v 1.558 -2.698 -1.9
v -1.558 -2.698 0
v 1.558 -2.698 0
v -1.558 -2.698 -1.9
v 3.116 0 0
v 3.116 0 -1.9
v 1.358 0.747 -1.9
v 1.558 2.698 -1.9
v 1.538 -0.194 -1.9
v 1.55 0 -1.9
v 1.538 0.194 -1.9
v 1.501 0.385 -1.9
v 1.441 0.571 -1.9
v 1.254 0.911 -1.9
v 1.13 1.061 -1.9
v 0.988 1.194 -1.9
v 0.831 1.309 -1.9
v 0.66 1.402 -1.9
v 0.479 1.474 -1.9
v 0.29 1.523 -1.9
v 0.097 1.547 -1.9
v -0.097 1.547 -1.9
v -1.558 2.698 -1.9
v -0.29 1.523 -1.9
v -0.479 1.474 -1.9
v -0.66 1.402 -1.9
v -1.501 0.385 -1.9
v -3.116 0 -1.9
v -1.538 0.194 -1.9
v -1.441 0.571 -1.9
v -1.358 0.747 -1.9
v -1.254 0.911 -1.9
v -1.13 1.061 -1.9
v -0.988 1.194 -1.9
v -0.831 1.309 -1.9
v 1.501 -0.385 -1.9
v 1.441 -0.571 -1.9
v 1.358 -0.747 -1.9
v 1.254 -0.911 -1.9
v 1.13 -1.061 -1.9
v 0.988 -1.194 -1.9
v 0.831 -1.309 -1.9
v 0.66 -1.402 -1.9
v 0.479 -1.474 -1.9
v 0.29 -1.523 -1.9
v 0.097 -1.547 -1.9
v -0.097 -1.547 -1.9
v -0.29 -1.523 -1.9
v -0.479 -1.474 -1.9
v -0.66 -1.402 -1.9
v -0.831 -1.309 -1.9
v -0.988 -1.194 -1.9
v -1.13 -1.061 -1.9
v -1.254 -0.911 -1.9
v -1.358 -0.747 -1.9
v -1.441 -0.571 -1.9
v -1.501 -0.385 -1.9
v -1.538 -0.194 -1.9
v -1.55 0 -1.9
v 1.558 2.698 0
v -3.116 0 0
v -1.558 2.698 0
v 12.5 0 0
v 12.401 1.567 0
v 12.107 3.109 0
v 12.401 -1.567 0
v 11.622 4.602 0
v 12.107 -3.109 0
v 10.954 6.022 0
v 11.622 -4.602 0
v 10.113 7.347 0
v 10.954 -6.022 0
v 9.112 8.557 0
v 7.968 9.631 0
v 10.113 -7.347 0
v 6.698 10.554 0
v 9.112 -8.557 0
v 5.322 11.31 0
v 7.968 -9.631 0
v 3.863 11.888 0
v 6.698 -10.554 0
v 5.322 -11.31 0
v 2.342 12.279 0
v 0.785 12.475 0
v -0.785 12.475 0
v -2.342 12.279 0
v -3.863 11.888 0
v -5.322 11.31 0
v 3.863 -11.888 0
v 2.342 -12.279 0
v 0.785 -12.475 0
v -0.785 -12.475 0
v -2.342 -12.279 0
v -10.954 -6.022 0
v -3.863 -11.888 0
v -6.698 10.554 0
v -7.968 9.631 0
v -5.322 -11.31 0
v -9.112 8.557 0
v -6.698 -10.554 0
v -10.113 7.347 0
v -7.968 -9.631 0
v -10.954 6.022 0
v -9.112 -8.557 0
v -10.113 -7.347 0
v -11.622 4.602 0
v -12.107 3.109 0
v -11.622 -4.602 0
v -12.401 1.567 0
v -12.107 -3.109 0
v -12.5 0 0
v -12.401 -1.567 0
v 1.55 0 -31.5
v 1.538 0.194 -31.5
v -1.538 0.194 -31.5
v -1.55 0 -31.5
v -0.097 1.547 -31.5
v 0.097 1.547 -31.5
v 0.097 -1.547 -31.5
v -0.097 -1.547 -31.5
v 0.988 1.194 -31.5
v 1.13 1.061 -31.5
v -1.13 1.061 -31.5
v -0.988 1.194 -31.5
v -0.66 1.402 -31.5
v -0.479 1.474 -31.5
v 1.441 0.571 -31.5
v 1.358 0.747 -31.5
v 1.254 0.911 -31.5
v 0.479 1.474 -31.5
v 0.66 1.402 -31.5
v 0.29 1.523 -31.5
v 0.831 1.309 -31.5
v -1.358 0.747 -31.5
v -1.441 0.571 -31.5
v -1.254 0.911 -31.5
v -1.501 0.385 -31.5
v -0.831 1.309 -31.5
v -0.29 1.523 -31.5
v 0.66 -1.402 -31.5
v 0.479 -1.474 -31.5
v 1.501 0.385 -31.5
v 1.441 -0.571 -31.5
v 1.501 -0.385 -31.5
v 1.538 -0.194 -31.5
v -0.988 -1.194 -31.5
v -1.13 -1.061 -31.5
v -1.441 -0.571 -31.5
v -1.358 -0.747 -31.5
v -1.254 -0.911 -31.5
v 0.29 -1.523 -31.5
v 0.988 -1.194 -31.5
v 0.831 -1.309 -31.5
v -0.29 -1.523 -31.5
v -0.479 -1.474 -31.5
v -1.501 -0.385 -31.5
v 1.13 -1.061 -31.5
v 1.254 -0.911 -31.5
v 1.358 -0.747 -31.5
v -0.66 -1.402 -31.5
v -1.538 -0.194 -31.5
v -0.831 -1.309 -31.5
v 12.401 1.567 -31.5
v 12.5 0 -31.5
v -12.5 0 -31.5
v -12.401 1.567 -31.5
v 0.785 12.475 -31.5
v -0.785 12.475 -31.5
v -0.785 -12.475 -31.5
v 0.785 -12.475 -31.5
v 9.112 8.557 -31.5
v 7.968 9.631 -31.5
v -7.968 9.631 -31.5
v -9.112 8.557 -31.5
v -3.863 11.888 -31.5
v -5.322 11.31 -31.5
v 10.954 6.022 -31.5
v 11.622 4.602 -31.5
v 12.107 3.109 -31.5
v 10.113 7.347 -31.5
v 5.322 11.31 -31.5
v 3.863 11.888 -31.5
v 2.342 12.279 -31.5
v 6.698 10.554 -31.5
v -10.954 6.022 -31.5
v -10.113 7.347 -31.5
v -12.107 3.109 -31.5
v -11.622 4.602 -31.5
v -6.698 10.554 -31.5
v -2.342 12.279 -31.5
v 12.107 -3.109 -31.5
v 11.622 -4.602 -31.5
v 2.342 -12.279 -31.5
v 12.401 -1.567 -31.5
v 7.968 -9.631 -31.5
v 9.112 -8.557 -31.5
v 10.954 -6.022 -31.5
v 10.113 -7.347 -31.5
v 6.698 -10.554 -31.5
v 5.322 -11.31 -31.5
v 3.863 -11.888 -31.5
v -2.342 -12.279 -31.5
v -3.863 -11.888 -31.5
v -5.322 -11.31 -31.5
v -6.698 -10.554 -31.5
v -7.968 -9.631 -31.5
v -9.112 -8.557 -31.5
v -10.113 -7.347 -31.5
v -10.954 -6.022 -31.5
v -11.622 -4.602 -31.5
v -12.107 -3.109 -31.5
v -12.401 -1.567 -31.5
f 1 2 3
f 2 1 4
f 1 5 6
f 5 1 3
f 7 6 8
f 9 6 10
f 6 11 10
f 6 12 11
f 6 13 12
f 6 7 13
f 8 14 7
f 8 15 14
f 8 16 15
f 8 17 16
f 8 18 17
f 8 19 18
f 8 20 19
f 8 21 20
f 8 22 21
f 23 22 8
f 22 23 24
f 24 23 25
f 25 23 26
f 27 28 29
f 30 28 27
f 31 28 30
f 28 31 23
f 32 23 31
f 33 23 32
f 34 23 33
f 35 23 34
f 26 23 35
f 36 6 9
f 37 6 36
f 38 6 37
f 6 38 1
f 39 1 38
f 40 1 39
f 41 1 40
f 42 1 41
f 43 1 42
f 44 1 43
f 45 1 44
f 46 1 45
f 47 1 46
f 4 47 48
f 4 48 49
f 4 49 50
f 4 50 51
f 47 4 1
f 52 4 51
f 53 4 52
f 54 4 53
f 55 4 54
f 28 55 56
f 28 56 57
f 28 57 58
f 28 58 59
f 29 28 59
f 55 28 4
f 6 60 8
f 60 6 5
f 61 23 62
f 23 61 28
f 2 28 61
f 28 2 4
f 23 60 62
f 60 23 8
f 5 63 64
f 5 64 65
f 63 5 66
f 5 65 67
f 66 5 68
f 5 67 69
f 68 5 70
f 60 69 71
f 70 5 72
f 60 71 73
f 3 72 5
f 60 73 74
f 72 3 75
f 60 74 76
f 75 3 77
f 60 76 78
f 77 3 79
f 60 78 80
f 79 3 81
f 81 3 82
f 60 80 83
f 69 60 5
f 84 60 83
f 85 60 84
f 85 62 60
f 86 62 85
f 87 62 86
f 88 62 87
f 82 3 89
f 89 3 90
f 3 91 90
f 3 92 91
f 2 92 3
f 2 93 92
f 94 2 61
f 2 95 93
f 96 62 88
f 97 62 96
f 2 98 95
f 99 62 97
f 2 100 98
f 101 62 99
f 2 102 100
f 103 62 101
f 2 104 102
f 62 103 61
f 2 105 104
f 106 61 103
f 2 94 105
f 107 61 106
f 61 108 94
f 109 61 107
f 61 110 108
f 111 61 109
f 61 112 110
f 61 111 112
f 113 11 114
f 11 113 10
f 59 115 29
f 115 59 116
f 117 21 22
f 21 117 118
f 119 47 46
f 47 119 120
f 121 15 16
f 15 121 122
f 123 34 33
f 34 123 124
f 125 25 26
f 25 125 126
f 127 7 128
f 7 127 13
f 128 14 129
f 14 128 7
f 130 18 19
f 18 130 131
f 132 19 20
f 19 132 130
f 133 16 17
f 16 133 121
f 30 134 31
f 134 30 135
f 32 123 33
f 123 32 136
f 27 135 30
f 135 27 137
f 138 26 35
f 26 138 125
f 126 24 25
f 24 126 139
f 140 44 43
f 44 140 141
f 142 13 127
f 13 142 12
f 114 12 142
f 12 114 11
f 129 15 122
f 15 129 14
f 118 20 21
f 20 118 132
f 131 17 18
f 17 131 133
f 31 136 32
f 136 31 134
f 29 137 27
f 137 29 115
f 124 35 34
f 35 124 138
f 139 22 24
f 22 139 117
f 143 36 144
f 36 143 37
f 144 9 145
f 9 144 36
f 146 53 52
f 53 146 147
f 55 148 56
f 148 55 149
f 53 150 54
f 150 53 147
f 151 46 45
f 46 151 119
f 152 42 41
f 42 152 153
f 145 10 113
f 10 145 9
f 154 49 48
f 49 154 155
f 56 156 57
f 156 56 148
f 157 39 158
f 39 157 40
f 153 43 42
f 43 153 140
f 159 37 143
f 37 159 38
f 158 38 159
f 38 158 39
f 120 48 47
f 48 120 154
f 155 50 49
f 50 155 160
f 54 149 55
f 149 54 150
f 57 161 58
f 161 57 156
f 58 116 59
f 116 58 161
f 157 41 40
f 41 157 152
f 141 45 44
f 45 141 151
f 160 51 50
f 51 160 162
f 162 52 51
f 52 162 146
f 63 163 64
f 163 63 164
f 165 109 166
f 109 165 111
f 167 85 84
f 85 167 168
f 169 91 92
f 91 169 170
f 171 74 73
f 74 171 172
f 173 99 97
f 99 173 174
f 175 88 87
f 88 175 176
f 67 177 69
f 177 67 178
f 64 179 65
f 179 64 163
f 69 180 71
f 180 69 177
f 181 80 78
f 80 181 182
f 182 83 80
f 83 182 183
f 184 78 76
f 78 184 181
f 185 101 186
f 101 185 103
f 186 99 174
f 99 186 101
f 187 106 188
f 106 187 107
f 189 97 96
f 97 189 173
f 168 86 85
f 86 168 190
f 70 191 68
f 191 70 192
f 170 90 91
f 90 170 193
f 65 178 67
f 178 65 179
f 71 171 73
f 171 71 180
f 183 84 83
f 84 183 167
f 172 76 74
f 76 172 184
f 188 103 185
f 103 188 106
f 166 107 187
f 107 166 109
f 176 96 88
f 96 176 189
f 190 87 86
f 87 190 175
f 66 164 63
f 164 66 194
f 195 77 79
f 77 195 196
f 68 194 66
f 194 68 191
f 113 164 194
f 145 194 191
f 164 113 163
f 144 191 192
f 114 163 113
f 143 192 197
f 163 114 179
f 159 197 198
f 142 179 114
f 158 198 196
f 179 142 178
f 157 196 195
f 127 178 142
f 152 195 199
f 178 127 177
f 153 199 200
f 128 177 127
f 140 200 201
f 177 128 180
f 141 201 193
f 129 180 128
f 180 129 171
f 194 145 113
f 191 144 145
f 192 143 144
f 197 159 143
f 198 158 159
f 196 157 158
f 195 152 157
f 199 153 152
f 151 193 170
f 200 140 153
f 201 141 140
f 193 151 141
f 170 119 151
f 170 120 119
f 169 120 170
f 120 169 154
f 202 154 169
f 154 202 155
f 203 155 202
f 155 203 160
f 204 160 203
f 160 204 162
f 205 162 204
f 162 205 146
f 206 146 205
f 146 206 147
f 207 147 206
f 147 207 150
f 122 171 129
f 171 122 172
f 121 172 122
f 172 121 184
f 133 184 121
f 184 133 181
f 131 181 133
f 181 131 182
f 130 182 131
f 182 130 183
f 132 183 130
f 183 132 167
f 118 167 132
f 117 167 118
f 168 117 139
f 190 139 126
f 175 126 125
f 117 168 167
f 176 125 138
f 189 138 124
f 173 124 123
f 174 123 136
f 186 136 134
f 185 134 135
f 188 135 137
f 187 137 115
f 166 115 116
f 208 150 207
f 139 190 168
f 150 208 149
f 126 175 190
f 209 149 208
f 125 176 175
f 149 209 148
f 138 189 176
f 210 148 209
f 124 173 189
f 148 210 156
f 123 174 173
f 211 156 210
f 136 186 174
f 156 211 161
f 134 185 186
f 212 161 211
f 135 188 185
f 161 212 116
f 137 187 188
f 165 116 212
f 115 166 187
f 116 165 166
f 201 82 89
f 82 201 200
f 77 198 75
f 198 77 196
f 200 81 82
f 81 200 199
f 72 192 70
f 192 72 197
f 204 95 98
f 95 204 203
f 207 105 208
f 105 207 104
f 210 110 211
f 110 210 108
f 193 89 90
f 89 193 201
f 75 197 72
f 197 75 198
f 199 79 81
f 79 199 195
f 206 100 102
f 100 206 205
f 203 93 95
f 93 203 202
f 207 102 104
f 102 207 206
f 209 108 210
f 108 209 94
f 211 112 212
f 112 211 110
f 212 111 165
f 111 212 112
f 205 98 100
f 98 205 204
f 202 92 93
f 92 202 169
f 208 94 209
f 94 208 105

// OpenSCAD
$fn = 50;

difference() {
	union() {
		translate(v = [0, 0, -31.5]) {
			cylinder(h = 31.5, r = 12.5);
		}
	}
	union() {
		translate(v = [0, 0, 0]) {
			rotate(a = [0, 0, 0]) {
				difference() {
					union() {
						translate(v = [0, 0, -1.9]) {
							linear_extrude(height = 1.9) {
								polygon(points = [[3.1158, 0.0], [1.5579000000000005, 2.698361953111554], [-1.5578999999999994, 2.6983619531115544], [-3.1158, 3.815754496783323e-16], [-1.5579000000000014, -2.6983619531115535], [1.557899999999998, -2.6983619531115552]]);
							}
						}
					}
					union();
				}
			}
		}
		#translate(v = [0, 0, -100.0]) {
			cylinder(h = 200, r = 1.55);
		}
	}
}
